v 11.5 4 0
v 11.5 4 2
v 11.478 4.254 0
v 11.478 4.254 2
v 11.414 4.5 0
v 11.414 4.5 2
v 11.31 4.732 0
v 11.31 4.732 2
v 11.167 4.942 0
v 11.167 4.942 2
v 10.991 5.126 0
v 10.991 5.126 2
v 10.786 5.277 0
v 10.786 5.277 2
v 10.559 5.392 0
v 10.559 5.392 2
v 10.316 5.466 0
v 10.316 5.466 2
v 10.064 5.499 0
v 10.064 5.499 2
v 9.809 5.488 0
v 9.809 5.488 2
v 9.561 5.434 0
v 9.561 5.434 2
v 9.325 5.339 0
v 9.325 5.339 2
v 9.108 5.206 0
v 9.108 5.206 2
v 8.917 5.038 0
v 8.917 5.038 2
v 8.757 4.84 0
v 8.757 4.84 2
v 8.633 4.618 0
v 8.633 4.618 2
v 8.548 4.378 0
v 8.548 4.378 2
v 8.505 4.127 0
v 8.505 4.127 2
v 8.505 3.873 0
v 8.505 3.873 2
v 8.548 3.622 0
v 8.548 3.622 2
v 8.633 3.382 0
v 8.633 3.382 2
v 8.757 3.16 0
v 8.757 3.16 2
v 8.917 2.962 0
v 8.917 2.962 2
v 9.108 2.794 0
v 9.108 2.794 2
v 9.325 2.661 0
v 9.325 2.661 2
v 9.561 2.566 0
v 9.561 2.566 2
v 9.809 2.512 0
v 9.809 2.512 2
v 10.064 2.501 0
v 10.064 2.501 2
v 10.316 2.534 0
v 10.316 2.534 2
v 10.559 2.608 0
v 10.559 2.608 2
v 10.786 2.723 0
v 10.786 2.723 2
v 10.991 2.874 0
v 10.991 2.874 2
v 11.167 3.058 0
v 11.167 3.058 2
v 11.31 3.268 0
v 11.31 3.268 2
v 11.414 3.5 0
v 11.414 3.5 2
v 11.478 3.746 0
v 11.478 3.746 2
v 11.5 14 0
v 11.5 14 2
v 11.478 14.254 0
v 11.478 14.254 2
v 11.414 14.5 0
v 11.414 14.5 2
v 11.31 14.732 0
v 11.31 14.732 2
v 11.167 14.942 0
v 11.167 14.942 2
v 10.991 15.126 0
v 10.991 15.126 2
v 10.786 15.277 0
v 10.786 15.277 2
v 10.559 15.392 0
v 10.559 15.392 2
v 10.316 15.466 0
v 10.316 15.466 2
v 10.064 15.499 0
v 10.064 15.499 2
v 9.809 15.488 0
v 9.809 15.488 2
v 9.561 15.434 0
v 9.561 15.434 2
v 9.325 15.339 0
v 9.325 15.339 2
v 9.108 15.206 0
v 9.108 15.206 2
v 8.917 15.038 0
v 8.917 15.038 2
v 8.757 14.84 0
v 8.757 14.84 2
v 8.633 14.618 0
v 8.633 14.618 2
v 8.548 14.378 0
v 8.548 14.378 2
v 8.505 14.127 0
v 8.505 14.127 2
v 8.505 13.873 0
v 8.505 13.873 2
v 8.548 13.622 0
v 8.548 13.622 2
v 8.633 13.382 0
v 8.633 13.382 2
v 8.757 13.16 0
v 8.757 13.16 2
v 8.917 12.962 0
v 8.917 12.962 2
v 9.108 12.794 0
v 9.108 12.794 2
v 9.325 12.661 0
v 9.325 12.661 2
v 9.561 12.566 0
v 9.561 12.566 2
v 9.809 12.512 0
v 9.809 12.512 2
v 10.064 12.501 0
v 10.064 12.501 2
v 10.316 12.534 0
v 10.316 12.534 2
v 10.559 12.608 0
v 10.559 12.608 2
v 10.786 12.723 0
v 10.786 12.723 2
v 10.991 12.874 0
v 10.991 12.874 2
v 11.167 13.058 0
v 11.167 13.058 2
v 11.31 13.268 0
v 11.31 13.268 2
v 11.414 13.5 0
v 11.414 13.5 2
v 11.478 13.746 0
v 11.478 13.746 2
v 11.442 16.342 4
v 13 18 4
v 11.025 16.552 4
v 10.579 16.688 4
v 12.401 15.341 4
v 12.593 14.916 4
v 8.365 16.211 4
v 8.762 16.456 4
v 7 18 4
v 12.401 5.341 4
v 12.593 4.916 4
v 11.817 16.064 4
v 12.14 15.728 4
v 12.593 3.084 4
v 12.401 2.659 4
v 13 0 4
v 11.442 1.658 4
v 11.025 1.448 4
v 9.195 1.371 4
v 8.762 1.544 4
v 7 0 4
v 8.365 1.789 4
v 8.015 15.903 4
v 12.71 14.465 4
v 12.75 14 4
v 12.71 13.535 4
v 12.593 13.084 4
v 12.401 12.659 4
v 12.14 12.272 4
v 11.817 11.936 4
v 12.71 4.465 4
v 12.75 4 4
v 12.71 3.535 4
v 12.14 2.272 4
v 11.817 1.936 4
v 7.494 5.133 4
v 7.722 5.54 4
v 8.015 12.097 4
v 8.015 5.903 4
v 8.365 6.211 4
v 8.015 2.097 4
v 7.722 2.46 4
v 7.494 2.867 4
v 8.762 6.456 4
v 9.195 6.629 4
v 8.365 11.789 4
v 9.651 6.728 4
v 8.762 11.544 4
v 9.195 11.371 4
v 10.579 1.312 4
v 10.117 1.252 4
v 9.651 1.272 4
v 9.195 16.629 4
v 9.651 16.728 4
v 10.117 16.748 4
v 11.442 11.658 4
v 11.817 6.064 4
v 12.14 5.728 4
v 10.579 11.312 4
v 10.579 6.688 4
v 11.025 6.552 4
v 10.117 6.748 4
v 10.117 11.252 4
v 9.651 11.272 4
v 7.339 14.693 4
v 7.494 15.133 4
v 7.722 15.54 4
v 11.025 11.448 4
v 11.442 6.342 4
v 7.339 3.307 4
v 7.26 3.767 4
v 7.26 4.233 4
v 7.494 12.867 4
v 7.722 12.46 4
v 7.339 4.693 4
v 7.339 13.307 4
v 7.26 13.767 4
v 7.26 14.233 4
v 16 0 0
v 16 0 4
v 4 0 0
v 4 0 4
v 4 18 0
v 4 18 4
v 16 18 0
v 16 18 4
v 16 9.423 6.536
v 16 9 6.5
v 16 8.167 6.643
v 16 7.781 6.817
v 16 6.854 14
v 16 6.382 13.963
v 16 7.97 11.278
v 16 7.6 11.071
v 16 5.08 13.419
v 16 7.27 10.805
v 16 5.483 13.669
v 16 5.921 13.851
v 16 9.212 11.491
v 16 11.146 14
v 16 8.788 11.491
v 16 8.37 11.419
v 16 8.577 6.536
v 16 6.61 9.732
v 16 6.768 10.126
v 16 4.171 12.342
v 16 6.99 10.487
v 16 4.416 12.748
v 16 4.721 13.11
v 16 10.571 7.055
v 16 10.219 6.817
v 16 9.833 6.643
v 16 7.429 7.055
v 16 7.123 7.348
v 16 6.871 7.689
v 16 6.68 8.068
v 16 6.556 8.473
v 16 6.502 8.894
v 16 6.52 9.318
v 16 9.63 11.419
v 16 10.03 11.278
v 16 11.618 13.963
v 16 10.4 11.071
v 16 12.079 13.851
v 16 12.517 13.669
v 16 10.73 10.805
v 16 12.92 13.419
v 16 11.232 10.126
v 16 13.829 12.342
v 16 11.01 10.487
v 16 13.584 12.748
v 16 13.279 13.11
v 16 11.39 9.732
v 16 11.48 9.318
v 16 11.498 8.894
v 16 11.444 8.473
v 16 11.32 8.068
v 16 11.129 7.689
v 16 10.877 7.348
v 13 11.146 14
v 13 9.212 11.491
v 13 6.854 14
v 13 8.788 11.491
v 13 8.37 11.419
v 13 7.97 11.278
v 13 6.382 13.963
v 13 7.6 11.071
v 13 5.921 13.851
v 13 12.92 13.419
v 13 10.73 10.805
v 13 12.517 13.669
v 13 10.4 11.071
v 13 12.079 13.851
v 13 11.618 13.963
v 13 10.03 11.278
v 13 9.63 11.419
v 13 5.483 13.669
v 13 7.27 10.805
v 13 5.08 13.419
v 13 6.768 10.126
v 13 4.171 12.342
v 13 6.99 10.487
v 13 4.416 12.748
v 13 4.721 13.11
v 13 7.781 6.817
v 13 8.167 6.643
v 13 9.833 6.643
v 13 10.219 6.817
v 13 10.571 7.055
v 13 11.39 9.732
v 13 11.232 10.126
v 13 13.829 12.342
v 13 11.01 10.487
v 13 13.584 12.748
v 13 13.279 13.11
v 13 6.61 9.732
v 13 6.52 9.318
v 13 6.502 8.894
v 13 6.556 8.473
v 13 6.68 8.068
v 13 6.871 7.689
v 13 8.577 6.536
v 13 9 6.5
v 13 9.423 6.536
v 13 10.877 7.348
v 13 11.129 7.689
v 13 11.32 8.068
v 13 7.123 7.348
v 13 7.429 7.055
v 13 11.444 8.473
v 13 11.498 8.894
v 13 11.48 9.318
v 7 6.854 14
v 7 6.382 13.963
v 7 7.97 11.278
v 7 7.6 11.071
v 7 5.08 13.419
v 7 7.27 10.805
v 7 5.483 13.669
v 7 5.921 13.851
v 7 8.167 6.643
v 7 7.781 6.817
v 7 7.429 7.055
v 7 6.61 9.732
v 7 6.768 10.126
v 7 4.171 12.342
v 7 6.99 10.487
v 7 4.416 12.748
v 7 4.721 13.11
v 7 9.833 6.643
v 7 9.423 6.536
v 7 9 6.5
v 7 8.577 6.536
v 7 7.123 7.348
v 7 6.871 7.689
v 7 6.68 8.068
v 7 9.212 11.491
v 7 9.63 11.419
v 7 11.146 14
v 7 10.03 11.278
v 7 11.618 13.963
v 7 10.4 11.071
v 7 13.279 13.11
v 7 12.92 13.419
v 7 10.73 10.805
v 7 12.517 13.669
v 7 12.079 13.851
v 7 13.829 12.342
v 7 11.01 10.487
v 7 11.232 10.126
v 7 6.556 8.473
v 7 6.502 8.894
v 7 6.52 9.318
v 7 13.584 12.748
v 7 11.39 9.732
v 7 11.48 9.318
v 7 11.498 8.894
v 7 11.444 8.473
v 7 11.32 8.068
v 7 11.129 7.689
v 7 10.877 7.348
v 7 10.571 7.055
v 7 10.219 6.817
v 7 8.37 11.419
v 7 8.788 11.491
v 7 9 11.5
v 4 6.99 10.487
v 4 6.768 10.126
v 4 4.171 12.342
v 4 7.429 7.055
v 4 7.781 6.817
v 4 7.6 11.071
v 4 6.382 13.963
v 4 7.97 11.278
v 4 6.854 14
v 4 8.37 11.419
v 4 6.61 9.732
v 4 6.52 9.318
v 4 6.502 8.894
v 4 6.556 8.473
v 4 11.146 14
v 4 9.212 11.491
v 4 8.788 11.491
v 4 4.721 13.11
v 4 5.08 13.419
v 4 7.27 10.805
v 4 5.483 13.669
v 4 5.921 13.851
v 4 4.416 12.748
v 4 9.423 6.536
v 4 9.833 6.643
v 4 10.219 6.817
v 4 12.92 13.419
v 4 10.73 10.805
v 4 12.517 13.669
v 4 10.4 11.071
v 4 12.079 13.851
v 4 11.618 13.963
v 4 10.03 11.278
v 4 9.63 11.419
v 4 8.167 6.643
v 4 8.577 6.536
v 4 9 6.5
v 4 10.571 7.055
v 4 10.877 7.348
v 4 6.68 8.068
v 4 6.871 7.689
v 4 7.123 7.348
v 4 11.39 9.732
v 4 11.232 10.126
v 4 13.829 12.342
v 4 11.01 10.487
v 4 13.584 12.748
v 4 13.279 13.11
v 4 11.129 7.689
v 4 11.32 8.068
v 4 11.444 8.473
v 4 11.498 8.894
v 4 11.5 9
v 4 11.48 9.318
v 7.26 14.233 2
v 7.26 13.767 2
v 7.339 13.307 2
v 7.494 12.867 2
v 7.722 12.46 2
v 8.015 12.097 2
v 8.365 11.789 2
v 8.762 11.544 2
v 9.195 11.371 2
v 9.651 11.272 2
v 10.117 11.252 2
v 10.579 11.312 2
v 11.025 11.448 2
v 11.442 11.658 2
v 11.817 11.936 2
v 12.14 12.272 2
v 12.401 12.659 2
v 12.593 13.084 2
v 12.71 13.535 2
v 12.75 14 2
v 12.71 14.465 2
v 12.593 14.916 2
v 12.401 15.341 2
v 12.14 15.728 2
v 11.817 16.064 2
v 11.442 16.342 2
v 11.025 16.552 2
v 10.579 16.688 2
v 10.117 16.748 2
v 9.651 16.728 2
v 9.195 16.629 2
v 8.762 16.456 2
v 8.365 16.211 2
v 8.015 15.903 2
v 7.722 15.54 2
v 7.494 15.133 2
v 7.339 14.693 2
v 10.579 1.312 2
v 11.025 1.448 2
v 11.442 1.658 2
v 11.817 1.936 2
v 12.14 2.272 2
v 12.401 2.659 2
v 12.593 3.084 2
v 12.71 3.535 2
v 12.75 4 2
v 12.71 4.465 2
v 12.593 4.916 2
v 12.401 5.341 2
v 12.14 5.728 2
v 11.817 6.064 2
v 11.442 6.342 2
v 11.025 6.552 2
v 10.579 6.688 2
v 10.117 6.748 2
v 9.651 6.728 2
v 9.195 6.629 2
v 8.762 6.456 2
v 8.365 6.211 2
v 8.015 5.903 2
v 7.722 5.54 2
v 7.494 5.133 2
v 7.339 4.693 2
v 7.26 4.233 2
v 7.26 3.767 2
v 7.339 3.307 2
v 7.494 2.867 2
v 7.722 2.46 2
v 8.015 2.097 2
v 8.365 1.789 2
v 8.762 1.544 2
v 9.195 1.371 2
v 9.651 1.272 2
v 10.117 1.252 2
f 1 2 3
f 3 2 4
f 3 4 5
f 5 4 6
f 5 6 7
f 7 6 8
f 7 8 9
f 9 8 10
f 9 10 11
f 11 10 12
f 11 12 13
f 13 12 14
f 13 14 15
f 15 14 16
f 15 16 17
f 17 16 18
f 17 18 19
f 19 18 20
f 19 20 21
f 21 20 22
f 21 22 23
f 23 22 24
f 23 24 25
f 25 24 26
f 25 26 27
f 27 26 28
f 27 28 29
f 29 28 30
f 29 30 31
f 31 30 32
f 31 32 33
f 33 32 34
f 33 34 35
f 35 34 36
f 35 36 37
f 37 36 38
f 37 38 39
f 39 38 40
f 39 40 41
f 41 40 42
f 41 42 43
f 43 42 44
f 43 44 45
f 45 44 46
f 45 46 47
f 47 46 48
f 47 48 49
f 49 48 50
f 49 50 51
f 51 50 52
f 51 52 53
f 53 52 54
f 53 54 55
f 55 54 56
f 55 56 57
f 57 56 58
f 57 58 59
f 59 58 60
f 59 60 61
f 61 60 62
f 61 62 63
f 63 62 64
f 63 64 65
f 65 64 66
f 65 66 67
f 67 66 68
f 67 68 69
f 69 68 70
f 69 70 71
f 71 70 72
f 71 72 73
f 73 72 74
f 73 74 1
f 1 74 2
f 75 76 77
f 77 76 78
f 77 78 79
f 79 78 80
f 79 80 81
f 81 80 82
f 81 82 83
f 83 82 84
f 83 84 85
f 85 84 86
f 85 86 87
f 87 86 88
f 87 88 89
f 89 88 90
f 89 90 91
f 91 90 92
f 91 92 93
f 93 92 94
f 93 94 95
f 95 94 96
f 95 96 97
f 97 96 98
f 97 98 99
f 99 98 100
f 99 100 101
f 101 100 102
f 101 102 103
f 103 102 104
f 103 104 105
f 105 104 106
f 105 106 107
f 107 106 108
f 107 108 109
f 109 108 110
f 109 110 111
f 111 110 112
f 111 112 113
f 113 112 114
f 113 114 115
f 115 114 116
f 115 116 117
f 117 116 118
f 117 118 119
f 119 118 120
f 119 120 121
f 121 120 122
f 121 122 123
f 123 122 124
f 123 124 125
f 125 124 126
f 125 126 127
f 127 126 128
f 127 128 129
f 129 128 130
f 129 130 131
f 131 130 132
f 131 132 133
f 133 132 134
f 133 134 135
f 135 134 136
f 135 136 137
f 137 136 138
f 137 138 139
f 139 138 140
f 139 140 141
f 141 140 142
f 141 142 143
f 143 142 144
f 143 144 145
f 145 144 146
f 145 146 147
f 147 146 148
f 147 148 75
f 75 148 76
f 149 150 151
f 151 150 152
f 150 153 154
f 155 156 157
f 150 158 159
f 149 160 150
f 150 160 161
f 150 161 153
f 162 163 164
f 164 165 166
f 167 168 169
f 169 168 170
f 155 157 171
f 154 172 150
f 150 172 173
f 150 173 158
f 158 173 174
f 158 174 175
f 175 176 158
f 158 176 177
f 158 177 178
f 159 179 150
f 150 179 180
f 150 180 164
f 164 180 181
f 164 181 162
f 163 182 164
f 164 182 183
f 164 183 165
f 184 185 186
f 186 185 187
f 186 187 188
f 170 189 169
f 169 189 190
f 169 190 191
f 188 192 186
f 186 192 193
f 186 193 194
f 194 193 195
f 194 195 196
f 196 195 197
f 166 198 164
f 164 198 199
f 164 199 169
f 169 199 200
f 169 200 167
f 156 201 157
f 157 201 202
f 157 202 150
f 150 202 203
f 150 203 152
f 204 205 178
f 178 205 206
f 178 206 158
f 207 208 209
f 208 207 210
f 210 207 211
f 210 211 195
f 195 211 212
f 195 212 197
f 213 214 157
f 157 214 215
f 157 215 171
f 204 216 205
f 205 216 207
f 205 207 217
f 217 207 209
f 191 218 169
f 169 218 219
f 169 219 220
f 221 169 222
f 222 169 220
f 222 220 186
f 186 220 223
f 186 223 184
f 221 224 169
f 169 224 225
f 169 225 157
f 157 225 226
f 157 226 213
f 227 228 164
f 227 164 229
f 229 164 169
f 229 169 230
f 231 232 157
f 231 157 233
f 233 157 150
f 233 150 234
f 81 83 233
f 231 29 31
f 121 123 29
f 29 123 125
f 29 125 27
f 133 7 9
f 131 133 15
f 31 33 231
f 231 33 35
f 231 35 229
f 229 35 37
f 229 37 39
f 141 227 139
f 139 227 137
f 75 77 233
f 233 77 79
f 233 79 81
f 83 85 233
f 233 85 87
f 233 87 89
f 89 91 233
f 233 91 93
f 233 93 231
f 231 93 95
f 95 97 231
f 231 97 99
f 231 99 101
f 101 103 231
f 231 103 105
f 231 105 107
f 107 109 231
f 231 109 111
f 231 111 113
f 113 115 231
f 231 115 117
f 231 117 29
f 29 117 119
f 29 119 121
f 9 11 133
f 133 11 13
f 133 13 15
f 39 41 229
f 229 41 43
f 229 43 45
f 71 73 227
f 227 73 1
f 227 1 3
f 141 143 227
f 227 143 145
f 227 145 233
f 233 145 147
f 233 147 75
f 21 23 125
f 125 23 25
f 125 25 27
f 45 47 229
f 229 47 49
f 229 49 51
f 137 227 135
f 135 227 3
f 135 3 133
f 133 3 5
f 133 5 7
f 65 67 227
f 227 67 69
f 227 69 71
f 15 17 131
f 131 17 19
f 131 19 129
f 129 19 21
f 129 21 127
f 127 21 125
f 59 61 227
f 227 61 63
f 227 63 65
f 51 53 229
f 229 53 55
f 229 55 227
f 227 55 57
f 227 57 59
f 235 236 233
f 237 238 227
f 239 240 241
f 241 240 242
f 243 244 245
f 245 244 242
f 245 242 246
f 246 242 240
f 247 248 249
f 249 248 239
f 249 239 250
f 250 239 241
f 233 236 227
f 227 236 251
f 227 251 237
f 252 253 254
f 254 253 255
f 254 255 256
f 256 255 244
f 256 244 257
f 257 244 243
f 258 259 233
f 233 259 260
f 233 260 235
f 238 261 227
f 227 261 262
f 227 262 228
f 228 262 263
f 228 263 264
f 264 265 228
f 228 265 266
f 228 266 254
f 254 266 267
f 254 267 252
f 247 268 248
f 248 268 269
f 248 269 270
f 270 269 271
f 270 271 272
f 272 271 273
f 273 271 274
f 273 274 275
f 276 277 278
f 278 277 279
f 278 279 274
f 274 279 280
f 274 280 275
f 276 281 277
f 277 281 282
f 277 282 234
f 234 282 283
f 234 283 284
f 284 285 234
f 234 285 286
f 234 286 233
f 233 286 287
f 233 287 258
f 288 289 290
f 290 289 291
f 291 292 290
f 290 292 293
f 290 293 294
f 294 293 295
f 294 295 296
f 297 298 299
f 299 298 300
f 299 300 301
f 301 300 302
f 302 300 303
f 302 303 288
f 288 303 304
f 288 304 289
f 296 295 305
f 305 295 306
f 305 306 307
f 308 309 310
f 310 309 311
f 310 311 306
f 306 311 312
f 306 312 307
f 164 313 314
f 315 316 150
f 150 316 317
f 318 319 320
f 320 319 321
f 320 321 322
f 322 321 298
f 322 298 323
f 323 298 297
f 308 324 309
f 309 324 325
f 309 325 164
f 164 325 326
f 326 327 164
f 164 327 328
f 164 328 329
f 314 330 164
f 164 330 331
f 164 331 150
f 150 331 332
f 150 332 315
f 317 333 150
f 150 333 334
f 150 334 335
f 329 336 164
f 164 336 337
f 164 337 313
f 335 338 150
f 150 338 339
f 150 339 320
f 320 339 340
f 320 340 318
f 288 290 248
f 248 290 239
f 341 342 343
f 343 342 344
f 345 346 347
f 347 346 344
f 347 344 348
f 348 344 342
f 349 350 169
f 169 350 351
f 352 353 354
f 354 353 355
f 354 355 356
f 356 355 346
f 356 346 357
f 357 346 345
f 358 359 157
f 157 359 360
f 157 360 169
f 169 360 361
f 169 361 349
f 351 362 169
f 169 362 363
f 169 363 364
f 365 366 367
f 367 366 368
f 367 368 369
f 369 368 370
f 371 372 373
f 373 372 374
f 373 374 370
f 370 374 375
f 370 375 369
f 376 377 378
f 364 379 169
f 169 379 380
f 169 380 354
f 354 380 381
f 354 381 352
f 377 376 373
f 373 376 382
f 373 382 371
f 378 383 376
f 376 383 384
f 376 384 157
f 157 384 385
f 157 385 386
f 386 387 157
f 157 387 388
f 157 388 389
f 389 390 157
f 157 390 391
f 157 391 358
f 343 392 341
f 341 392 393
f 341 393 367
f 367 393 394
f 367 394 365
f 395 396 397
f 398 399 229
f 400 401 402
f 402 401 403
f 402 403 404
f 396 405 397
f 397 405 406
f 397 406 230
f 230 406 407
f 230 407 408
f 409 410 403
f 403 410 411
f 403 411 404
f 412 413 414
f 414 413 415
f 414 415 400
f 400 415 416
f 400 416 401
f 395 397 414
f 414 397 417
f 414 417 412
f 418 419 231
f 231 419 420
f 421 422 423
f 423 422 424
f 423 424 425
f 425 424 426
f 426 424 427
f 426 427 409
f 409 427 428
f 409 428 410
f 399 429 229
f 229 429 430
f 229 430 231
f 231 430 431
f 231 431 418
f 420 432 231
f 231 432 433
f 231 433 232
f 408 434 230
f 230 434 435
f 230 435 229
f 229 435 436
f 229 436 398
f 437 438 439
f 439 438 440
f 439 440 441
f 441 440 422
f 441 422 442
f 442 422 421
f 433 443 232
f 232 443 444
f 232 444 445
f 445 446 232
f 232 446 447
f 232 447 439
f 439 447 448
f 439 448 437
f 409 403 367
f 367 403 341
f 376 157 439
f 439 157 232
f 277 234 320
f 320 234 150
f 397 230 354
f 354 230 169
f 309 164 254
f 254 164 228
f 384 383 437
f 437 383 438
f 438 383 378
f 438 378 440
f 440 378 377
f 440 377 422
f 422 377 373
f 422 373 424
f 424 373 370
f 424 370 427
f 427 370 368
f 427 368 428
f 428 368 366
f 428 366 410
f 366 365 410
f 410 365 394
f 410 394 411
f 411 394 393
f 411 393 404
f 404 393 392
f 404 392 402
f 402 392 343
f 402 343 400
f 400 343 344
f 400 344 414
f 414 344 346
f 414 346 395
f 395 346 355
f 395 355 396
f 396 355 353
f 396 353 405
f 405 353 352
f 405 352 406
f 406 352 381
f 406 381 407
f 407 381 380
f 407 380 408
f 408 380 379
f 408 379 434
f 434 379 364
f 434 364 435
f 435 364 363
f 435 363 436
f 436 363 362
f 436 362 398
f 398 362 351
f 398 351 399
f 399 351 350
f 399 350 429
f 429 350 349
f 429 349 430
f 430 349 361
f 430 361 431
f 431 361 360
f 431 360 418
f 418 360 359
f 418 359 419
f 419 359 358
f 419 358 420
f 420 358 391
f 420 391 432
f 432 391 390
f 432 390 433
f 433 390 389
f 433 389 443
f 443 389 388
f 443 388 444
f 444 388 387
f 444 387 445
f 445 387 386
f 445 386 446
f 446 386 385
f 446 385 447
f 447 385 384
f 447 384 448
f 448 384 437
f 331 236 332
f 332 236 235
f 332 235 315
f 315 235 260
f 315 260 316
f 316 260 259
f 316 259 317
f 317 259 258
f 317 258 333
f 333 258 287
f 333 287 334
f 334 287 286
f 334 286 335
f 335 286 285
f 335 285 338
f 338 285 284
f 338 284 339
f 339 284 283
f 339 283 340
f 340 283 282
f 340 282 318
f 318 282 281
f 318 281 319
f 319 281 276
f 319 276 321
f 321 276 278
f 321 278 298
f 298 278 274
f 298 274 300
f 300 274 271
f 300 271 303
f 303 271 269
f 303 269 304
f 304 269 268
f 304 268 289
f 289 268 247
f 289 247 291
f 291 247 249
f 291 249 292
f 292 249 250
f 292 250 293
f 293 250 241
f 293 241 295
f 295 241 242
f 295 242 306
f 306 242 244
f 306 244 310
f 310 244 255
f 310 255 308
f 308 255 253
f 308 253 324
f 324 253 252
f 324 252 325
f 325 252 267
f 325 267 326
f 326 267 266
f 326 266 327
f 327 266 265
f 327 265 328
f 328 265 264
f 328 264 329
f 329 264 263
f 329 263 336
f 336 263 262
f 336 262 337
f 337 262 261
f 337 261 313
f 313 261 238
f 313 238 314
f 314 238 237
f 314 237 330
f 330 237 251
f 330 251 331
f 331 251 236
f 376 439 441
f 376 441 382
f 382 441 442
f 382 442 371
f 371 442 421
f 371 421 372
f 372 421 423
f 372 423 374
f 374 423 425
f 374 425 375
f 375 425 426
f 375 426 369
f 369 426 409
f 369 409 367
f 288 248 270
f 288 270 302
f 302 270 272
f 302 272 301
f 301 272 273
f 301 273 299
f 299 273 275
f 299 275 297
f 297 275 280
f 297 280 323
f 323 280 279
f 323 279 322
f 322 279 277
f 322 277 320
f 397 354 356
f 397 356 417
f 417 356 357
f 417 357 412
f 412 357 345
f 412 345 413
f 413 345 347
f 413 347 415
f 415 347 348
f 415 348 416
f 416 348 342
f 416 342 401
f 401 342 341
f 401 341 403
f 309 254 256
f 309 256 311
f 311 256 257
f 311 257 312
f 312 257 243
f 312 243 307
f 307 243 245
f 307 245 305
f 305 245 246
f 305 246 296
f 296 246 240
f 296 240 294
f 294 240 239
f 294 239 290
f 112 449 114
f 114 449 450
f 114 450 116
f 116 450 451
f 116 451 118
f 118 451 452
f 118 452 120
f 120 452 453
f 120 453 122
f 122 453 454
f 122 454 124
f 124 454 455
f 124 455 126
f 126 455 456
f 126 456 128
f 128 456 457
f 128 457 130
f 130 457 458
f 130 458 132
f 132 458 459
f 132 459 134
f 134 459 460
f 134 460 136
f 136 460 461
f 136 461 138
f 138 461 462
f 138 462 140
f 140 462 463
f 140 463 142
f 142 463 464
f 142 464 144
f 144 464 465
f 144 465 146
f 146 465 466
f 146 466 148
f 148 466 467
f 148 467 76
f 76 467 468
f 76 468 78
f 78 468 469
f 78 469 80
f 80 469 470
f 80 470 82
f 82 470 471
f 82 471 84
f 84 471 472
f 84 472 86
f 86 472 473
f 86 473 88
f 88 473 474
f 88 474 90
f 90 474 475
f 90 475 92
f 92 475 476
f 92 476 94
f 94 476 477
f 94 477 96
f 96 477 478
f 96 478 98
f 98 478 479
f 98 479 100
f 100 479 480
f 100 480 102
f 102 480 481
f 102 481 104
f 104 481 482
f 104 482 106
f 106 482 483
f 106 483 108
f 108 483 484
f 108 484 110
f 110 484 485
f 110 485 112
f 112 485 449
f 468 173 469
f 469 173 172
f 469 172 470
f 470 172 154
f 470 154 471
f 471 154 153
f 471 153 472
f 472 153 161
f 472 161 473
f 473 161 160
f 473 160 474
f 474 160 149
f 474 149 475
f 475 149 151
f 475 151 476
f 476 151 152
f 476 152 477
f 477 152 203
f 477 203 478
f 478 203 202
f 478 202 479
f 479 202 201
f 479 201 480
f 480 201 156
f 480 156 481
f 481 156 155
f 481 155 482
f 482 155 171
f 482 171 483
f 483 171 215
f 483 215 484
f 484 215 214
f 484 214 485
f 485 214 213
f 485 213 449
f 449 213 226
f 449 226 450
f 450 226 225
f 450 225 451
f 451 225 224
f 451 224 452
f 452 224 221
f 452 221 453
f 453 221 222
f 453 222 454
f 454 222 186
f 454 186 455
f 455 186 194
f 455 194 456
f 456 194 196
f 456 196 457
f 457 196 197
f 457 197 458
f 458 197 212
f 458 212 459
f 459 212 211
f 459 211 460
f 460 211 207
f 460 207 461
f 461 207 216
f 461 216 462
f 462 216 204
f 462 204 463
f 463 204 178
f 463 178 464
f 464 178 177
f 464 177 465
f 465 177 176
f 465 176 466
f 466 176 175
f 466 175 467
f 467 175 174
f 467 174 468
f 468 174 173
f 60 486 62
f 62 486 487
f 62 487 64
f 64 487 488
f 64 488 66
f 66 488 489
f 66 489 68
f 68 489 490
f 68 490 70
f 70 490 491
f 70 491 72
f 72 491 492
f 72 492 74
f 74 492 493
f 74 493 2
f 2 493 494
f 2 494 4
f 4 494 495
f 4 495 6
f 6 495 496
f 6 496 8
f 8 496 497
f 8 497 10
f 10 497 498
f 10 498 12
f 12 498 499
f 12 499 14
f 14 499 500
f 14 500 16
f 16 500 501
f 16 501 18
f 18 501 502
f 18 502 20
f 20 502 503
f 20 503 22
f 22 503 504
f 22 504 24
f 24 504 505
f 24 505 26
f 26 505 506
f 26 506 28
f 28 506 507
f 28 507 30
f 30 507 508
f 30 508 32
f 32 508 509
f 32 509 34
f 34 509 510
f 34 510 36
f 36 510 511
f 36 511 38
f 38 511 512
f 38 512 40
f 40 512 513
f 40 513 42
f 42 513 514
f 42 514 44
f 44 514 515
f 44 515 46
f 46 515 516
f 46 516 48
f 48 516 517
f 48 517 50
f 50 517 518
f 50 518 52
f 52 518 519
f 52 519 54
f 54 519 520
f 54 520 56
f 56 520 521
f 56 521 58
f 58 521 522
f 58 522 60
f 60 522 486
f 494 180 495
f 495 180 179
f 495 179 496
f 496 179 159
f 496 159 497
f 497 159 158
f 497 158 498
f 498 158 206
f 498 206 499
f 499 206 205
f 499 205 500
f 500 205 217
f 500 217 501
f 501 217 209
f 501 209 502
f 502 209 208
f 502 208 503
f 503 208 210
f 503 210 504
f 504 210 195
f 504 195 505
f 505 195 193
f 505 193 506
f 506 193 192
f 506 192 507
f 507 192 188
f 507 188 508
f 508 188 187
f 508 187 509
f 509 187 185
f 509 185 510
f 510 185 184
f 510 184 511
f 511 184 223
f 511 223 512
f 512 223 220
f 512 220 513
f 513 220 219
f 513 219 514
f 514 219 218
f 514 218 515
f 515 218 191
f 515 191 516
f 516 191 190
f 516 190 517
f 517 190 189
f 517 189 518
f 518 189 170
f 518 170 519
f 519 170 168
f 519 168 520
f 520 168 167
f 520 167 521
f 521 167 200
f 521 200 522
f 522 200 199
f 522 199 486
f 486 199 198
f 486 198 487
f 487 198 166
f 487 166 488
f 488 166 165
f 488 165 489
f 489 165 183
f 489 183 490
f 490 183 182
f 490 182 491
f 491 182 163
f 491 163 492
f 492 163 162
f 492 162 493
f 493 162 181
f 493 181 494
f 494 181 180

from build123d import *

# Parameters (mm, degrees)
SKETCH_1_W          = 20
SKETCH_1_H          = 18
EXTRUDE_1_DEPTH     = 4
SKETCH_2_W          = 3
SKETCH_2_H          = 18
EXTRUDE_2_DEPTH     = 10
CUT_EXTRUDE_1_DEPTH = 28.856776554
SKETCH_6_R          = 2.5
CUT_EXTRUDE_2_DEPTH = 28.856776554
FILLET_1_R          = 3
SKETCH_9_W          = 4
SKETCH_9_H          = 18
CUT_EXTRUDE_4_DEPTH = 29.705400189
SKETCH_10_W         = 4
SKETCH_10_H         = 18
CUT_EXTRUDE_5_DEPTH = 29.705400189
SKETCH_11_R         = 1.5
CUT_EXTRUDE_6_DEPTH = 27.076809621
SKETCH_12_R         = 2.75
CUT_EXTRUDE_7_DEPTH = 2


with BuildPart() as part:
    # 草图1 → 凸台-拉伸1 (new body)
    with BuildSketch(Plane.XY):
        with Locations((10, 9)):
            Rectangle(SKETCH_1_W, SKETCH_1_H)
    extrude(amount=EXTRUDE_1_DEPTH)

    # 草图2 → 凸台-拉伸2 (add)
    with BuildSketch(Plane.XY.offset(4)):
        with Locations((14.5, 9)):
            Rectangle(SKETCH_2_W, SKETCH_2_H)
        with Locations((5.5, 9)):
            Rectangle(SKETCH_2_W, SKETCH_2_H)
    extrude(amount=EXTRUDE_2_DEPTH)

    # 草图3 → 切除-拉伸1 (cut, through all)
    with BuildSketch(Plane.ZY.offset(-4)):
        Polygon((4, 18), (14, 13), (14, 19.313508938), align=None)
        Polygon((4, 0), (14, 5), (15.372444732, -0.863940538), align=None)
    extrude(amount=-CUT_EXTRUDE_1_DEPTH, mode=Mode.SUBTRACT)

    # 草图6 → 切除-拉伸2 (cut, through all)
    with BuildSketch(Plane(origin=(16, 0, 0), x_dir=(0, 0, -1), z_dir=(1, 0, 0))):
        with Locations(Location((-9, 9, 0), (0, 0, 90))):
            Circle(SKETCH_6_R)
    extrude(amount=-CUT_EXTRUDE_2_DEPTH, mode=Mode.SUBTRACT)

    # 圆角1
    fillet_1_edges = [part.edges().sort_by_distance(p)[0] for p in [
        (5.5, 13, 14),
        (14.5, 13, 14),
        (5.5, 5, 14),
        (14.5, 5, 14),
    ]]
    fillet(fillet_1_edges, radius=FILLET_1_R)

    # 草图9 → 切除-拉伸4 (cut, through all)
    with BuildSketch(Plane.XY.offset(4)):
        with Locations((2, 9)):
            Rectangle(SKETCH_9_W, SKETCH_9_H)
    extrude(amount=-CUT_EXTRUDE_4_DEPTH, mode=Mode.SUBTRACT)

    # 草图10 → 切除-拉伸5 (cut, through all)
    with BuildSketch(Plane.XY.offset(4)):
        with Locations((18, 9)):
            Rectangle(SKETCH_10_W, SKETCH_10_H)
    extrude(amount=-CUT_EXTRUDE_5_DEPTH, mode=Mode.SUBTRACT)

    # 草图11 → 切除-拉伸6 (cut, through all)
    with BuildSketch(Plane.XY.offset(4)):
        with Locations((10, 14)):
            Circle(SKETCH_11_R)
        with Locations((10, 4)):
            Circle(SKETCH_11_R)
    extrude(amount=-CUT_EXTRUDE_6_DEPTH, mode=Mode.SUBTRACT)

    # 草图12 → 切除-拉伸7 (cut)
    with BuildSketch(Plane.XY.offset(4)):
        with Locations((10, 14)):
            Circle(SKETCH_12_R)
        with Locations((10, 4)):
            Circle(SKETCH_12_R)
    extrude(amount=-CUT_EXTRUDE_7_DEPTH, mode=Mode.SUBTRACT)


solid = part.part
